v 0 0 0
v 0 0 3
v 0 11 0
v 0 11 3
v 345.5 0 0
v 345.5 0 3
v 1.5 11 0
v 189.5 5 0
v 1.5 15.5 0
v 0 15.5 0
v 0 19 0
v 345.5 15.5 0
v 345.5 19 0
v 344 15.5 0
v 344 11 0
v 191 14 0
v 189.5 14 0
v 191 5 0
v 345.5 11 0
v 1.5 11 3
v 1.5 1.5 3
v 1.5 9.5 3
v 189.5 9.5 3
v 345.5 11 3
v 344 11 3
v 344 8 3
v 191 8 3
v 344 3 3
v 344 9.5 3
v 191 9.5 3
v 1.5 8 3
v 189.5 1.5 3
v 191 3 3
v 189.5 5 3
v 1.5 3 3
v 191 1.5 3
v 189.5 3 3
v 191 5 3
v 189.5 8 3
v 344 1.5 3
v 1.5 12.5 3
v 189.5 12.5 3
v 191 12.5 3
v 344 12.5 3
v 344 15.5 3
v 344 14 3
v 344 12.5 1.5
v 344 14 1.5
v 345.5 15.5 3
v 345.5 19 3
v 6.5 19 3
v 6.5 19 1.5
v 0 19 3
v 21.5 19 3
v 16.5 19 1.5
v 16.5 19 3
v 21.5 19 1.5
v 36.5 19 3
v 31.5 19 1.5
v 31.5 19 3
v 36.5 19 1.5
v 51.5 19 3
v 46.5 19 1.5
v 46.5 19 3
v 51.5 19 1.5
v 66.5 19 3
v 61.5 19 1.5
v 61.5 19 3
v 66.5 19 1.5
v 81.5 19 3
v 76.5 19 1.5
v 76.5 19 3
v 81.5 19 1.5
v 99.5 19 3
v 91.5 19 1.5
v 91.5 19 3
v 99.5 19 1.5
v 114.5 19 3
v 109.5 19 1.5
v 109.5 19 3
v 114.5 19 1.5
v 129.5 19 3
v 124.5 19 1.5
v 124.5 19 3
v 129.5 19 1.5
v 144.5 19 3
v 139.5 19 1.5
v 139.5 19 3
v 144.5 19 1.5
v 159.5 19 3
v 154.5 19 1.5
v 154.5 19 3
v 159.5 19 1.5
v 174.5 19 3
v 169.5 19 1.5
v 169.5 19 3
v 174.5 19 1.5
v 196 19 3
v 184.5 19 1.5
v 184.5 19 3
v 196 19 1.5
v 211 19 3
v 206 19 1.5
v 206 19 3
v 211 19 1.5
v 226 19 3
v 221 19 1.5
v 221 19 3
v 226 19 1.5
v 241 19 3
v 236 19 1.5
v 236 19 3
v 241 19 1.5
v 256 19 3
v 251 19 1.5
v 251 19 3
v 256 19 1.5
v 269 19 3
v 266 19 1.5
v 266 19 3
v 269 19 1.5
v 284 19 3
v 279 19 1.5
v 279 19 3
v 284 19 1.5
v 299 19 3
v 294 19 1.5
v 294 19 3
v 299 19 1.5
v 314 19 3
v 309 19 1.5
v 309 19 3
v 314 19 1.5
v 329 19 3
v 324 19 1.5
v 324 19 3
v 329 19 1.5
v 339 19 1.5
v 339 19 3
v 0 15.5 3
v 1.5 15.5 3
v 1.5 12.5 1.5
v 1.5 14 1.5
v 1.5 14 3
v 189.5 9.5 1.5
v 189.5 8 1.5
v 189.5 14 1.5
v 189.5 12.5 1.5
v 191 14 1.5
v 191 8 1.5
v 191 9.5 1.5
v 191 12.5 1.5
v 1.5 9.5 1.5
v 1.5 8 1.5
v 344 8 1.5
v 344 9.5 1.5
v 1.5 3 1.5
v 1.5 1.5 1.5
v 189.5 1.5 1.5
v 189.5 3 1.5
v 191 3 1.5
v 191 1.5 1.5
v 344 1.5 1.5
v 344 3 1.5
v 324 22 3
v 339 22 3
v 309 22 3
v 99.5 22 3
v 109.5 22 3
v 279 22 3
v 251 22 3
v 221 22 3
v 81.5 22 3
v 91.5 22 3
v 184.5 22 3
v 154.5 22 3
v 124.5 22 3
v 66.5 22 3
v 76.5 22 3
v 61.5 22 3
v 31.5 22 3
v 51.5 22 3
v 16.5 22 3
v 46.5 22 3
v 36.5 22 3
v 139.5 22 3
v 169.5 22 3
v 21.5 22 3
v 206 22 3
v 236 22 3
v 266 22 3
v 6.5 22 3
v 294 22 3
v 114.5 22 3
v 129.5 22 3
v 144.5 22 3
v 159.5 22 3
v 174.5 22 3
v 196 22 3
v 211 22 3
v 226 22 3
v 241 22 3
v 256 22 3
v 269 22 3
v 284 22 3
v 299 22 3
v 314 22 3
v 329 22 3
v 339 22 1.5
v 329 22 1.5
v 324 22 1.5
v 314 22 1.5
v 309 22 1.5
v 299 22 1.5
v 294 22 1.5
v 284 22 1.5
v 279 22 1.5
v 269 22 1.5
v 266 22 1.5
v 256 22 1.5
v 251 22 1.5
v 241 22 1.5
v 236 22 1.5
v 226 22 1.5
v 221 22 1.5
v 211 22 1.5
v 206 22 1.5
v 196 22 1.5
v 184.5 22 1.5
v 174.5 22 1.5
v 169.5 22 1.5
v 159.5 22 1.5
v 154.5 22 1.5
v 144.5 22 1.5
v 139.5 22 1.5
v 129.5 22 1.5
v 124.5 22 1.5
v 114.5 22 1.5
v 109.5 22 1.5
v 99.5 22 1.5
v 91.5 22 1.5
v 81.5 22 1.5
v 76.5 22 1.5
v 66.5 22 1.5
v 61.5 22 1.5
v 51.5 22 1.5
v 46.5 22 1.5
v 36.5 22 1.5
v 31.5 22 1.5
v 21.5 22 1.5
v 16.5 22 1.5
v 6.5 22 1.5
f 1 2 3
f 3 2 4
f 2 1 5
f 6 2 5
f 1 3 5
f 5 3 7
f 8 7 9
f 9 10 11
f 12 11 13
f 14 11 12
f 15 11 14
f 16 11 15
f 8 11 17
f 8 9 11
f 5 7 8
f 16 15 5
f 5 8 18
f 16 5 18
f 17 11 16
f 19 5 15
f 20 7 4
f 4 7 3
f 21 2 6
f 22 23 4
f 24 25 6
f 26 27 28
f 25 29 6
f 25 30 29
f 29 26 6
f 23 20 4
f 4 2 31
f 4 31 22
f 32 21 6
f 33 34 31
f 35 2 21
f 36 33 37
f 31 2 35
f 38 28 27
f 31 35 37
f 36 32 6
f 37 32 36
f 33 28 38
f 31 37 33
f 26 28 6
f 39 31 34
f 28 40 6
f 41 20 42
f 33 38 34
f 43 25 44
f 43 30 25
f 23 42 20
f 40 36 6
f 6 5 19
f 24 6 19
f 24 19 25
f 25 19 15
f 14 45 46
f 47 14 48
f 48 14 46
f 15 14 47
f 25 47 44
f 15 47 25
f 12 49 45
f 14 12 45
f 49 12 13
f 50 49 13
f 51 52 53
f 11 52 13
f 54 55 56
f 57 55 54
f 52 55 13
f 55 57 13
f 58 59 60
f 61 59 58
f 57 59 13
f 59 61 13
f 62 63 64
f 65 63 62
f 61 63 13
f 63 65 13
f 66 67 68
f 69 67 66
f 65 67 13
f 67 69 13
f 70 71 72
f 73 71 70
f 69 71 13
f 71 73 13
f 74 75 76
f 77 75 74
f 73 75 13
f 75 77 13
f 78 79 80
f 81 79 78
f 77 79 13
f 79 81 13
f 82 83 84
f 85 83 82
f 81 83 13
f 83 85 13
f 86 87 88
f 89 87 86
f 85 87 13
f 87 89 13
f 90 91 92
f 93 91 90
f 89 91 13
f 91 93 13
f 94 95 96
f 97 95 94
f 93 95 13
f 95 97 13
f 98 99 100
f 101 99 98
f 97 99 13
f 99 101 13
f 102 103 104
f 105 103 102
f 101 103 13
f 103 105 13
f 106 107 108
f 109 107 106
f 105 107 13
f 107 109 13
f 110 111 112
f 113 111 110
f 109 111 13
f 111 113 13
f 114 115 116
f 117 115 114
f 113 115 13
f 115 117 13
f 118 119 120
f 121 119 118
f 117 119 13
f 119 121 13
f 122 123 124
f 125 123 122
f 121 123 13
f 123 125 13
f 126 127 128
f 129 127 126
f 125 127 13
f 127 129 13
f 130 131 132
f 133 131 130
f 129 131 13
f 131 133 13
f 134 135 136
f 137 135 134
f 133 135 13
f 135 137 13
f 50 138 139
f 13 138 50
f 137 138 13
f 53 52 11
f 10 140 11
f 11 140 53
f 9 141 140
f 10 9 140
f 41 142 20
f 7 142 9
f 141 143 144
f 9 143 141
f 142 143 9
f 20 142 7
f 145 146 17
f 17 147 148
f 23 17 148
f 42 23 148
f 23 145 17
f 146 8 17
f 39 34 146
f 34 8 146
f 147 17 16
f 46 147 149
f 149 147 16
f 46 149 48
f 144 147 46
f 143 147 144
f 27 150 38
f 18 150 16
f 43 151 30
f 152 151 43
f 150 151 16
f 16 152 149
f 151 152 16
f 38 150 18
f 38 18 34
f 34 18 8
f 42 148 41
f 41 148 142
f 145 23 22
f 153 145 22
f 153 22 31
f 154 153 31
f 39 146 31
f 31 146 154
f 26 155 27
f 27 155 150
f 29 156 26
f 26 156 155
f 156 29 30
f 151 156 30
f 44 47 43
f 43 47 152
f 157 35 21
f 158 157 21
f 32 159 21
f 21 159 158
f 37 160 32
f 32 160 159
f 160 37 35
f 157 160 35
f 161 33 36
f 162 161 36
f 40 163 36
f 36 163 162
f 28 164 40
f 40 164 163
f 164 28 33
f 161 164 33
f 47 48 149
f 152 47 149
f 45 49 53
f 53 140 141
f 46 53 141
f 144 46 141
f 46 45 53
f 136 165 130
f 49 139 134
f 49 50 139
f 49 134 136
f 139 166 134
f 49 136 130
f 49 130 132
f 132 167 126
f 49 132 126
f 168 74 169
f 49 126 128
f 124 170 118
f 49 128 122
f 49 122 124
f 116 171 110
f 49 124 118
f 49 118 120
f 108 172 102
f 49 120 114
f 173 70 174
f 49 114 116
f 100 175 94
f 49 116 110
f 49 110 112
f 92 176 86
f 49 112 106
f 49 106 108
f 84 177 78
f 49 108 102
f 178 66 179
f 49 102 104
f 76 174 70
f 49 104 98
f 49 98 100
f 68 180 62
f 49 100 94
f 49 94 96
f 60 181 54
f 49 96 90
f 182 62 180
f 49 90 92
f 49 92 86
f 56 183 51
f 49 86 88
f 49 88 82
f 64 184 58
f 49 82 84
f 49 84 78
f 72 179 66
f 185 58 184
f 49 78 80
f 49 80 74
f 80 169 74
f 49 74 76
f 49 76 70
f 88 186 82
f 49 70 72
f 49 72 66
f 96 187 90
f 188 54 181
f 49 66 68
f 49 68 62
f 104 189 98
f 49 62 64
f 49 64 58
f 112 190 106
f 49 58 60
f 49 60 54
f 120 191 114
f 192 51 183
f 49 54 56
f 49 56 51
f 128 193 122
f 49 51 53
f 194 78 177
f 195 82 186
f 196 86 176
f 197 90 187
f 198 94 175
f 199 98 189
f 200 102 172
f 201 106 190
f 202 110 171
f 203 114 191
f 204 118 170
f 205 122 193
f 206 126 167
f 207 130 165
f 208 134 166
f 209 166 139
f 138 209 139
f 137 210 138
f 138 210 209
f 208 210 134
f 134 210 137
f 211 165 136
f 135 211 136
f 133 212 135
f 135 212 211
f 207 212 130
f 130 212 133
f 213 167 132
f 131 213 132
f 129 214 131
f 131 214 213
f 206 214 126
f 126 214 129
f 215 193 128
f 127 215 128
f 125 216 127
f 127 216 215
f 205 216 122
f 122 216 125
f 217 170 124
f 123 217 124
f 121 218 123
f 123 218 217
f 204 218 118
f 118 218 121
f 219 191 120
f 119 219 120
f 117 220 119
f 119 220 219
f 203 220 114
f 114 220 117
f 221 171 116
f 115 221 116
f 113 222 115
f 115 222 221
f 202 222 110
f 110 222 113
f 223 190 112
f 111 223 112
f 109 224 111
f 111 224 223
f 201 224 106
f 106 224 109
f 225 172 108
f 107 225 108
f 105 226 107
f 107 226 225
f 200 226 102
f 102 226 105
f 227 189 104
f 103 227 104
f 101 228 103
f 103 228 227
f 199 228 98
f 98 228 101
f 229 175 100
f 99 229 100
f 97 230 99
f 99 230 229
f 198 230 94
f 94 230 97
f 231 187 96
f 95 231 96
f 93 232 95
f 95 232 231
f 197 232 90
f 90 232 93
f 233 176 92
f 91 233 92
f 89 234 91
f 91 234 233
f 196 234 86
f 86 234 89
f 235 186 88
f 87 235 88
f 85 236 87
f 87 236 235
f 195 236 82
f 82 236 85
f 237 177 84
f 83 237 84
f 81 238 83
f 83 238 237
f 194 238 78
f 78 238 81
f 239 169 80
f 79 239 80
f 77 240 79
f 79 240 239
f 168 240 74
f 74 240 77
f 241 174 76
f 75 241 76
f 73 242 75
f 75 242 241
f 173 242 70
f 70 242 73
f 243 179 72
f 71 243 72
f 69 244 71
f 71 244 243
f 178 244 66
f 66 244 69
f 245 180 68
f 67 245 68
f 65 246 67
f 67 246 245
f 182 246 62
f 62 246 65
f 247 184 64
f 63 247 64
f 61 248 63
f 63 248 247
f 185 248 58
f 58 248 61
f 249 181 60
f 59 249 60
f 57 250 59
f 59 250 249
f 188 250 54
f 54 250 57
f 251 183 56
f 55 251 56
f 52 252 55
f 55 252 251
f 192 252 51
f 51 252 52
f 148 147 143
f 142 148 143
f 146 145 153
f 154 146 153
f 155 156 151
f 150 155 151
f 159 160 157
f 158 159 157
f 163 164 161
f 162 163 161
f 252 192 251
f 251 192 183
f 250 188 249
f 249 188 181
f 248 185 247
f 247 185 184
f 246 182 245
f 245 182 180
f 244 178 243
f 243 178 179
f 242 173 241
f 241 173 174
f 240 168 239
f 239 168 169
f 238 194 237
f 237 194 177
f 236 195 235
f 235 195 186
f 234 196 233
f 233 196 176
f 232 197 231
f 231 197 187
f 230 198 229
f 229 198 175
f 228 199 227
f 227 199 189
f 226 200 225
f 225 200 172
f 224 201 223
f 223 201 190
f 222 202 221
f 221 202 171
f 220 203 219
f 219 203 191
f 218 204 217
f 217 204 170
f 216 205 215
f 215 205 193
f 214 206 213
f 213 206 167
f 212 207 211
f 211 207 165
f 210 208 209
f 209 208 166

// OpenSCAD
rightHandBoard = 188;
accessoryBoard = 153;
edge = 1.5;

depth = 2 * edge;
width = rightHandBoard + accessoryBoard + 3 * edge;

groove = 1.5;
faceSpace = 5;
mountSpace = 3;
pcbSpace = 5;

notchSpacing = 5;
notchWidth = 10;
notchHeight = 3;

height =
	edge +
	groove +
	faceSpace +
	groove +
	mountSpace +
	groove +
	pcbSpace +
	notchHeight;

faceTop = edge;
mountTop = faceTop + groove + faceSpace;
pcbTop = mountTop + groove + mountSpace;
baseTop = pcbTop + groove + pcbSpace;

rightHandNotchCount = 12;
accessoryNotchCount = 10;
rightHandNotchGap = rightHandBoard - rightHandNotchCount * (notchSpacing + notchWidth);
accessoryNotchGap = accessoryBoard - accessoryNotchCount * (notchSpacing + notchWidth);
notch1Left = edge + notchSpacing;
notch2Left = notch1Left + notchSpacing + notchWidth;
notch3Left = notch2Left + notchSpacing + notchWidth;
notch4Left = notch3Left + notchSpacing + notchWidth;
notch5Left = notch4Left + notchSpacing + notchWidth;
notch6Left = notch5Left + notchSpacing + notchWidth;
notch7Left = notch6Left + rightHandNotchGap + notchWidth;
notch8Left = notch7Left + notchSpacing + notchWidth;
notch9Left = notch8Left + notchSpacing + notchWidth;
notch10Left = notch9Left + notchSpacing + notchWidth;
notch11Left = notch10Left + notchSpacing + notchWidth;
notch12Left = notch11Left + notchSpacing + notchWidth;

notch13Left = notch12Left + notchSpacing + notchWidth + edge + notchSpacing;
notch14Left = notch13Left + notchSpacing + notchWidth;
notch15Left = notch14Left + notchSpacing + notchWidth;
notch16Left = notch15Left + notchSpacing + notchWidth;
notch17Left = notch16Left + notchSpacing + notchWidth;
notch18Left = notch17Left + accessoryNotchGap + notchWidth;
notch19Left = notch18Left + notchSpacing + notchWidth;
notch20Left = notch19Left + notchSpacing + notchWidth;
notch21Left = notch20Left + notchSpacing + notchWidth;
notch22Left = notch21Left + notchSpacing + notchWidth;

module hole(x, y, z, cx, cy, cz)
{
	translate([x, y, z]) cube([cx, cy, cz]);
}

module grooveHole(y)
{
	hole(edge, y, edge, rightHandBoard, groove, edge);
	hole(2 * edge + rightHandBoard, y, edge, accessoryBoard, groove, edge);
}

module notchHole(x, cx)
{
	hole(x, baseTop, edge, cx, notchHeight, edge);
}

module sideNotch(x)
{
	hole(x, pcbTop - edge, 0, edge, 2 * edge + groove, depth);
}

difference()
{
	cube([width, height, depth]);

	grooveHole(faceTop);
	grooveHole(mountTop);
	grooveHole(pcbTop);

	hole(0, baseTop, 0, width, notchHeight, edge);
	notchHole(0, notch1Left);
	notchHole(notch1Left + notchWidth, notchSpacing);
	notchHole(notch2Left + notchWidth, notchSpacing);
	notchHole(notch3Left + notchWidth, notchSpacing);
	notchHole(notch4Left + notchWidth, notchSpacing);
	notchHole(notch5Left + notchWidth, notchSpacing);
	notchHole(notch6Left + notchWidth, rightHandNotchGap);
	notchHole(notch7Left + notchWidth, notchSpacing);
	notchHole(notch8Left + notchWidth, notchSpacing);
	notchHole(notch9Left + notchWidth, notchSpacing);
	notchHole(notch10Left + notchWidth, notchSpacing);
	notchHole(notch11Left + notchWidth, notchSpacing);
	notchHole(notch12Left + notchWidth, 2 * notchSpacing + edge);
	notchHole(notch13Left + notchWidth, notchSpacing);
	notchHole(notch14Left + notchWidth, notchSpacing);
	notchHole(notch15Left + notchWidth, notchSpacing);
	notchHole(notch16Left + notchWidth, notchSpacing);
	notchHole(notch17Left + notchWidth, accessoryNotchGap);
	notchHole(notch18Left + notchWidth, notchSpacing);
	notchHole(notch19Left + notchWidth, notchSpacing);
	notchHole(notch20Left + notchWidth, notchSpacing);
	notchHole(notch21Left + notchWidth, notchSpacing);
	notchHole(notch22Left + notchWidth, notchSpacing + edge);

	sideNotch(0);
	sideNotch(width - edge);

	hole(edge + rightHandBoard, 5, 0, edge, 9, depth);
}
